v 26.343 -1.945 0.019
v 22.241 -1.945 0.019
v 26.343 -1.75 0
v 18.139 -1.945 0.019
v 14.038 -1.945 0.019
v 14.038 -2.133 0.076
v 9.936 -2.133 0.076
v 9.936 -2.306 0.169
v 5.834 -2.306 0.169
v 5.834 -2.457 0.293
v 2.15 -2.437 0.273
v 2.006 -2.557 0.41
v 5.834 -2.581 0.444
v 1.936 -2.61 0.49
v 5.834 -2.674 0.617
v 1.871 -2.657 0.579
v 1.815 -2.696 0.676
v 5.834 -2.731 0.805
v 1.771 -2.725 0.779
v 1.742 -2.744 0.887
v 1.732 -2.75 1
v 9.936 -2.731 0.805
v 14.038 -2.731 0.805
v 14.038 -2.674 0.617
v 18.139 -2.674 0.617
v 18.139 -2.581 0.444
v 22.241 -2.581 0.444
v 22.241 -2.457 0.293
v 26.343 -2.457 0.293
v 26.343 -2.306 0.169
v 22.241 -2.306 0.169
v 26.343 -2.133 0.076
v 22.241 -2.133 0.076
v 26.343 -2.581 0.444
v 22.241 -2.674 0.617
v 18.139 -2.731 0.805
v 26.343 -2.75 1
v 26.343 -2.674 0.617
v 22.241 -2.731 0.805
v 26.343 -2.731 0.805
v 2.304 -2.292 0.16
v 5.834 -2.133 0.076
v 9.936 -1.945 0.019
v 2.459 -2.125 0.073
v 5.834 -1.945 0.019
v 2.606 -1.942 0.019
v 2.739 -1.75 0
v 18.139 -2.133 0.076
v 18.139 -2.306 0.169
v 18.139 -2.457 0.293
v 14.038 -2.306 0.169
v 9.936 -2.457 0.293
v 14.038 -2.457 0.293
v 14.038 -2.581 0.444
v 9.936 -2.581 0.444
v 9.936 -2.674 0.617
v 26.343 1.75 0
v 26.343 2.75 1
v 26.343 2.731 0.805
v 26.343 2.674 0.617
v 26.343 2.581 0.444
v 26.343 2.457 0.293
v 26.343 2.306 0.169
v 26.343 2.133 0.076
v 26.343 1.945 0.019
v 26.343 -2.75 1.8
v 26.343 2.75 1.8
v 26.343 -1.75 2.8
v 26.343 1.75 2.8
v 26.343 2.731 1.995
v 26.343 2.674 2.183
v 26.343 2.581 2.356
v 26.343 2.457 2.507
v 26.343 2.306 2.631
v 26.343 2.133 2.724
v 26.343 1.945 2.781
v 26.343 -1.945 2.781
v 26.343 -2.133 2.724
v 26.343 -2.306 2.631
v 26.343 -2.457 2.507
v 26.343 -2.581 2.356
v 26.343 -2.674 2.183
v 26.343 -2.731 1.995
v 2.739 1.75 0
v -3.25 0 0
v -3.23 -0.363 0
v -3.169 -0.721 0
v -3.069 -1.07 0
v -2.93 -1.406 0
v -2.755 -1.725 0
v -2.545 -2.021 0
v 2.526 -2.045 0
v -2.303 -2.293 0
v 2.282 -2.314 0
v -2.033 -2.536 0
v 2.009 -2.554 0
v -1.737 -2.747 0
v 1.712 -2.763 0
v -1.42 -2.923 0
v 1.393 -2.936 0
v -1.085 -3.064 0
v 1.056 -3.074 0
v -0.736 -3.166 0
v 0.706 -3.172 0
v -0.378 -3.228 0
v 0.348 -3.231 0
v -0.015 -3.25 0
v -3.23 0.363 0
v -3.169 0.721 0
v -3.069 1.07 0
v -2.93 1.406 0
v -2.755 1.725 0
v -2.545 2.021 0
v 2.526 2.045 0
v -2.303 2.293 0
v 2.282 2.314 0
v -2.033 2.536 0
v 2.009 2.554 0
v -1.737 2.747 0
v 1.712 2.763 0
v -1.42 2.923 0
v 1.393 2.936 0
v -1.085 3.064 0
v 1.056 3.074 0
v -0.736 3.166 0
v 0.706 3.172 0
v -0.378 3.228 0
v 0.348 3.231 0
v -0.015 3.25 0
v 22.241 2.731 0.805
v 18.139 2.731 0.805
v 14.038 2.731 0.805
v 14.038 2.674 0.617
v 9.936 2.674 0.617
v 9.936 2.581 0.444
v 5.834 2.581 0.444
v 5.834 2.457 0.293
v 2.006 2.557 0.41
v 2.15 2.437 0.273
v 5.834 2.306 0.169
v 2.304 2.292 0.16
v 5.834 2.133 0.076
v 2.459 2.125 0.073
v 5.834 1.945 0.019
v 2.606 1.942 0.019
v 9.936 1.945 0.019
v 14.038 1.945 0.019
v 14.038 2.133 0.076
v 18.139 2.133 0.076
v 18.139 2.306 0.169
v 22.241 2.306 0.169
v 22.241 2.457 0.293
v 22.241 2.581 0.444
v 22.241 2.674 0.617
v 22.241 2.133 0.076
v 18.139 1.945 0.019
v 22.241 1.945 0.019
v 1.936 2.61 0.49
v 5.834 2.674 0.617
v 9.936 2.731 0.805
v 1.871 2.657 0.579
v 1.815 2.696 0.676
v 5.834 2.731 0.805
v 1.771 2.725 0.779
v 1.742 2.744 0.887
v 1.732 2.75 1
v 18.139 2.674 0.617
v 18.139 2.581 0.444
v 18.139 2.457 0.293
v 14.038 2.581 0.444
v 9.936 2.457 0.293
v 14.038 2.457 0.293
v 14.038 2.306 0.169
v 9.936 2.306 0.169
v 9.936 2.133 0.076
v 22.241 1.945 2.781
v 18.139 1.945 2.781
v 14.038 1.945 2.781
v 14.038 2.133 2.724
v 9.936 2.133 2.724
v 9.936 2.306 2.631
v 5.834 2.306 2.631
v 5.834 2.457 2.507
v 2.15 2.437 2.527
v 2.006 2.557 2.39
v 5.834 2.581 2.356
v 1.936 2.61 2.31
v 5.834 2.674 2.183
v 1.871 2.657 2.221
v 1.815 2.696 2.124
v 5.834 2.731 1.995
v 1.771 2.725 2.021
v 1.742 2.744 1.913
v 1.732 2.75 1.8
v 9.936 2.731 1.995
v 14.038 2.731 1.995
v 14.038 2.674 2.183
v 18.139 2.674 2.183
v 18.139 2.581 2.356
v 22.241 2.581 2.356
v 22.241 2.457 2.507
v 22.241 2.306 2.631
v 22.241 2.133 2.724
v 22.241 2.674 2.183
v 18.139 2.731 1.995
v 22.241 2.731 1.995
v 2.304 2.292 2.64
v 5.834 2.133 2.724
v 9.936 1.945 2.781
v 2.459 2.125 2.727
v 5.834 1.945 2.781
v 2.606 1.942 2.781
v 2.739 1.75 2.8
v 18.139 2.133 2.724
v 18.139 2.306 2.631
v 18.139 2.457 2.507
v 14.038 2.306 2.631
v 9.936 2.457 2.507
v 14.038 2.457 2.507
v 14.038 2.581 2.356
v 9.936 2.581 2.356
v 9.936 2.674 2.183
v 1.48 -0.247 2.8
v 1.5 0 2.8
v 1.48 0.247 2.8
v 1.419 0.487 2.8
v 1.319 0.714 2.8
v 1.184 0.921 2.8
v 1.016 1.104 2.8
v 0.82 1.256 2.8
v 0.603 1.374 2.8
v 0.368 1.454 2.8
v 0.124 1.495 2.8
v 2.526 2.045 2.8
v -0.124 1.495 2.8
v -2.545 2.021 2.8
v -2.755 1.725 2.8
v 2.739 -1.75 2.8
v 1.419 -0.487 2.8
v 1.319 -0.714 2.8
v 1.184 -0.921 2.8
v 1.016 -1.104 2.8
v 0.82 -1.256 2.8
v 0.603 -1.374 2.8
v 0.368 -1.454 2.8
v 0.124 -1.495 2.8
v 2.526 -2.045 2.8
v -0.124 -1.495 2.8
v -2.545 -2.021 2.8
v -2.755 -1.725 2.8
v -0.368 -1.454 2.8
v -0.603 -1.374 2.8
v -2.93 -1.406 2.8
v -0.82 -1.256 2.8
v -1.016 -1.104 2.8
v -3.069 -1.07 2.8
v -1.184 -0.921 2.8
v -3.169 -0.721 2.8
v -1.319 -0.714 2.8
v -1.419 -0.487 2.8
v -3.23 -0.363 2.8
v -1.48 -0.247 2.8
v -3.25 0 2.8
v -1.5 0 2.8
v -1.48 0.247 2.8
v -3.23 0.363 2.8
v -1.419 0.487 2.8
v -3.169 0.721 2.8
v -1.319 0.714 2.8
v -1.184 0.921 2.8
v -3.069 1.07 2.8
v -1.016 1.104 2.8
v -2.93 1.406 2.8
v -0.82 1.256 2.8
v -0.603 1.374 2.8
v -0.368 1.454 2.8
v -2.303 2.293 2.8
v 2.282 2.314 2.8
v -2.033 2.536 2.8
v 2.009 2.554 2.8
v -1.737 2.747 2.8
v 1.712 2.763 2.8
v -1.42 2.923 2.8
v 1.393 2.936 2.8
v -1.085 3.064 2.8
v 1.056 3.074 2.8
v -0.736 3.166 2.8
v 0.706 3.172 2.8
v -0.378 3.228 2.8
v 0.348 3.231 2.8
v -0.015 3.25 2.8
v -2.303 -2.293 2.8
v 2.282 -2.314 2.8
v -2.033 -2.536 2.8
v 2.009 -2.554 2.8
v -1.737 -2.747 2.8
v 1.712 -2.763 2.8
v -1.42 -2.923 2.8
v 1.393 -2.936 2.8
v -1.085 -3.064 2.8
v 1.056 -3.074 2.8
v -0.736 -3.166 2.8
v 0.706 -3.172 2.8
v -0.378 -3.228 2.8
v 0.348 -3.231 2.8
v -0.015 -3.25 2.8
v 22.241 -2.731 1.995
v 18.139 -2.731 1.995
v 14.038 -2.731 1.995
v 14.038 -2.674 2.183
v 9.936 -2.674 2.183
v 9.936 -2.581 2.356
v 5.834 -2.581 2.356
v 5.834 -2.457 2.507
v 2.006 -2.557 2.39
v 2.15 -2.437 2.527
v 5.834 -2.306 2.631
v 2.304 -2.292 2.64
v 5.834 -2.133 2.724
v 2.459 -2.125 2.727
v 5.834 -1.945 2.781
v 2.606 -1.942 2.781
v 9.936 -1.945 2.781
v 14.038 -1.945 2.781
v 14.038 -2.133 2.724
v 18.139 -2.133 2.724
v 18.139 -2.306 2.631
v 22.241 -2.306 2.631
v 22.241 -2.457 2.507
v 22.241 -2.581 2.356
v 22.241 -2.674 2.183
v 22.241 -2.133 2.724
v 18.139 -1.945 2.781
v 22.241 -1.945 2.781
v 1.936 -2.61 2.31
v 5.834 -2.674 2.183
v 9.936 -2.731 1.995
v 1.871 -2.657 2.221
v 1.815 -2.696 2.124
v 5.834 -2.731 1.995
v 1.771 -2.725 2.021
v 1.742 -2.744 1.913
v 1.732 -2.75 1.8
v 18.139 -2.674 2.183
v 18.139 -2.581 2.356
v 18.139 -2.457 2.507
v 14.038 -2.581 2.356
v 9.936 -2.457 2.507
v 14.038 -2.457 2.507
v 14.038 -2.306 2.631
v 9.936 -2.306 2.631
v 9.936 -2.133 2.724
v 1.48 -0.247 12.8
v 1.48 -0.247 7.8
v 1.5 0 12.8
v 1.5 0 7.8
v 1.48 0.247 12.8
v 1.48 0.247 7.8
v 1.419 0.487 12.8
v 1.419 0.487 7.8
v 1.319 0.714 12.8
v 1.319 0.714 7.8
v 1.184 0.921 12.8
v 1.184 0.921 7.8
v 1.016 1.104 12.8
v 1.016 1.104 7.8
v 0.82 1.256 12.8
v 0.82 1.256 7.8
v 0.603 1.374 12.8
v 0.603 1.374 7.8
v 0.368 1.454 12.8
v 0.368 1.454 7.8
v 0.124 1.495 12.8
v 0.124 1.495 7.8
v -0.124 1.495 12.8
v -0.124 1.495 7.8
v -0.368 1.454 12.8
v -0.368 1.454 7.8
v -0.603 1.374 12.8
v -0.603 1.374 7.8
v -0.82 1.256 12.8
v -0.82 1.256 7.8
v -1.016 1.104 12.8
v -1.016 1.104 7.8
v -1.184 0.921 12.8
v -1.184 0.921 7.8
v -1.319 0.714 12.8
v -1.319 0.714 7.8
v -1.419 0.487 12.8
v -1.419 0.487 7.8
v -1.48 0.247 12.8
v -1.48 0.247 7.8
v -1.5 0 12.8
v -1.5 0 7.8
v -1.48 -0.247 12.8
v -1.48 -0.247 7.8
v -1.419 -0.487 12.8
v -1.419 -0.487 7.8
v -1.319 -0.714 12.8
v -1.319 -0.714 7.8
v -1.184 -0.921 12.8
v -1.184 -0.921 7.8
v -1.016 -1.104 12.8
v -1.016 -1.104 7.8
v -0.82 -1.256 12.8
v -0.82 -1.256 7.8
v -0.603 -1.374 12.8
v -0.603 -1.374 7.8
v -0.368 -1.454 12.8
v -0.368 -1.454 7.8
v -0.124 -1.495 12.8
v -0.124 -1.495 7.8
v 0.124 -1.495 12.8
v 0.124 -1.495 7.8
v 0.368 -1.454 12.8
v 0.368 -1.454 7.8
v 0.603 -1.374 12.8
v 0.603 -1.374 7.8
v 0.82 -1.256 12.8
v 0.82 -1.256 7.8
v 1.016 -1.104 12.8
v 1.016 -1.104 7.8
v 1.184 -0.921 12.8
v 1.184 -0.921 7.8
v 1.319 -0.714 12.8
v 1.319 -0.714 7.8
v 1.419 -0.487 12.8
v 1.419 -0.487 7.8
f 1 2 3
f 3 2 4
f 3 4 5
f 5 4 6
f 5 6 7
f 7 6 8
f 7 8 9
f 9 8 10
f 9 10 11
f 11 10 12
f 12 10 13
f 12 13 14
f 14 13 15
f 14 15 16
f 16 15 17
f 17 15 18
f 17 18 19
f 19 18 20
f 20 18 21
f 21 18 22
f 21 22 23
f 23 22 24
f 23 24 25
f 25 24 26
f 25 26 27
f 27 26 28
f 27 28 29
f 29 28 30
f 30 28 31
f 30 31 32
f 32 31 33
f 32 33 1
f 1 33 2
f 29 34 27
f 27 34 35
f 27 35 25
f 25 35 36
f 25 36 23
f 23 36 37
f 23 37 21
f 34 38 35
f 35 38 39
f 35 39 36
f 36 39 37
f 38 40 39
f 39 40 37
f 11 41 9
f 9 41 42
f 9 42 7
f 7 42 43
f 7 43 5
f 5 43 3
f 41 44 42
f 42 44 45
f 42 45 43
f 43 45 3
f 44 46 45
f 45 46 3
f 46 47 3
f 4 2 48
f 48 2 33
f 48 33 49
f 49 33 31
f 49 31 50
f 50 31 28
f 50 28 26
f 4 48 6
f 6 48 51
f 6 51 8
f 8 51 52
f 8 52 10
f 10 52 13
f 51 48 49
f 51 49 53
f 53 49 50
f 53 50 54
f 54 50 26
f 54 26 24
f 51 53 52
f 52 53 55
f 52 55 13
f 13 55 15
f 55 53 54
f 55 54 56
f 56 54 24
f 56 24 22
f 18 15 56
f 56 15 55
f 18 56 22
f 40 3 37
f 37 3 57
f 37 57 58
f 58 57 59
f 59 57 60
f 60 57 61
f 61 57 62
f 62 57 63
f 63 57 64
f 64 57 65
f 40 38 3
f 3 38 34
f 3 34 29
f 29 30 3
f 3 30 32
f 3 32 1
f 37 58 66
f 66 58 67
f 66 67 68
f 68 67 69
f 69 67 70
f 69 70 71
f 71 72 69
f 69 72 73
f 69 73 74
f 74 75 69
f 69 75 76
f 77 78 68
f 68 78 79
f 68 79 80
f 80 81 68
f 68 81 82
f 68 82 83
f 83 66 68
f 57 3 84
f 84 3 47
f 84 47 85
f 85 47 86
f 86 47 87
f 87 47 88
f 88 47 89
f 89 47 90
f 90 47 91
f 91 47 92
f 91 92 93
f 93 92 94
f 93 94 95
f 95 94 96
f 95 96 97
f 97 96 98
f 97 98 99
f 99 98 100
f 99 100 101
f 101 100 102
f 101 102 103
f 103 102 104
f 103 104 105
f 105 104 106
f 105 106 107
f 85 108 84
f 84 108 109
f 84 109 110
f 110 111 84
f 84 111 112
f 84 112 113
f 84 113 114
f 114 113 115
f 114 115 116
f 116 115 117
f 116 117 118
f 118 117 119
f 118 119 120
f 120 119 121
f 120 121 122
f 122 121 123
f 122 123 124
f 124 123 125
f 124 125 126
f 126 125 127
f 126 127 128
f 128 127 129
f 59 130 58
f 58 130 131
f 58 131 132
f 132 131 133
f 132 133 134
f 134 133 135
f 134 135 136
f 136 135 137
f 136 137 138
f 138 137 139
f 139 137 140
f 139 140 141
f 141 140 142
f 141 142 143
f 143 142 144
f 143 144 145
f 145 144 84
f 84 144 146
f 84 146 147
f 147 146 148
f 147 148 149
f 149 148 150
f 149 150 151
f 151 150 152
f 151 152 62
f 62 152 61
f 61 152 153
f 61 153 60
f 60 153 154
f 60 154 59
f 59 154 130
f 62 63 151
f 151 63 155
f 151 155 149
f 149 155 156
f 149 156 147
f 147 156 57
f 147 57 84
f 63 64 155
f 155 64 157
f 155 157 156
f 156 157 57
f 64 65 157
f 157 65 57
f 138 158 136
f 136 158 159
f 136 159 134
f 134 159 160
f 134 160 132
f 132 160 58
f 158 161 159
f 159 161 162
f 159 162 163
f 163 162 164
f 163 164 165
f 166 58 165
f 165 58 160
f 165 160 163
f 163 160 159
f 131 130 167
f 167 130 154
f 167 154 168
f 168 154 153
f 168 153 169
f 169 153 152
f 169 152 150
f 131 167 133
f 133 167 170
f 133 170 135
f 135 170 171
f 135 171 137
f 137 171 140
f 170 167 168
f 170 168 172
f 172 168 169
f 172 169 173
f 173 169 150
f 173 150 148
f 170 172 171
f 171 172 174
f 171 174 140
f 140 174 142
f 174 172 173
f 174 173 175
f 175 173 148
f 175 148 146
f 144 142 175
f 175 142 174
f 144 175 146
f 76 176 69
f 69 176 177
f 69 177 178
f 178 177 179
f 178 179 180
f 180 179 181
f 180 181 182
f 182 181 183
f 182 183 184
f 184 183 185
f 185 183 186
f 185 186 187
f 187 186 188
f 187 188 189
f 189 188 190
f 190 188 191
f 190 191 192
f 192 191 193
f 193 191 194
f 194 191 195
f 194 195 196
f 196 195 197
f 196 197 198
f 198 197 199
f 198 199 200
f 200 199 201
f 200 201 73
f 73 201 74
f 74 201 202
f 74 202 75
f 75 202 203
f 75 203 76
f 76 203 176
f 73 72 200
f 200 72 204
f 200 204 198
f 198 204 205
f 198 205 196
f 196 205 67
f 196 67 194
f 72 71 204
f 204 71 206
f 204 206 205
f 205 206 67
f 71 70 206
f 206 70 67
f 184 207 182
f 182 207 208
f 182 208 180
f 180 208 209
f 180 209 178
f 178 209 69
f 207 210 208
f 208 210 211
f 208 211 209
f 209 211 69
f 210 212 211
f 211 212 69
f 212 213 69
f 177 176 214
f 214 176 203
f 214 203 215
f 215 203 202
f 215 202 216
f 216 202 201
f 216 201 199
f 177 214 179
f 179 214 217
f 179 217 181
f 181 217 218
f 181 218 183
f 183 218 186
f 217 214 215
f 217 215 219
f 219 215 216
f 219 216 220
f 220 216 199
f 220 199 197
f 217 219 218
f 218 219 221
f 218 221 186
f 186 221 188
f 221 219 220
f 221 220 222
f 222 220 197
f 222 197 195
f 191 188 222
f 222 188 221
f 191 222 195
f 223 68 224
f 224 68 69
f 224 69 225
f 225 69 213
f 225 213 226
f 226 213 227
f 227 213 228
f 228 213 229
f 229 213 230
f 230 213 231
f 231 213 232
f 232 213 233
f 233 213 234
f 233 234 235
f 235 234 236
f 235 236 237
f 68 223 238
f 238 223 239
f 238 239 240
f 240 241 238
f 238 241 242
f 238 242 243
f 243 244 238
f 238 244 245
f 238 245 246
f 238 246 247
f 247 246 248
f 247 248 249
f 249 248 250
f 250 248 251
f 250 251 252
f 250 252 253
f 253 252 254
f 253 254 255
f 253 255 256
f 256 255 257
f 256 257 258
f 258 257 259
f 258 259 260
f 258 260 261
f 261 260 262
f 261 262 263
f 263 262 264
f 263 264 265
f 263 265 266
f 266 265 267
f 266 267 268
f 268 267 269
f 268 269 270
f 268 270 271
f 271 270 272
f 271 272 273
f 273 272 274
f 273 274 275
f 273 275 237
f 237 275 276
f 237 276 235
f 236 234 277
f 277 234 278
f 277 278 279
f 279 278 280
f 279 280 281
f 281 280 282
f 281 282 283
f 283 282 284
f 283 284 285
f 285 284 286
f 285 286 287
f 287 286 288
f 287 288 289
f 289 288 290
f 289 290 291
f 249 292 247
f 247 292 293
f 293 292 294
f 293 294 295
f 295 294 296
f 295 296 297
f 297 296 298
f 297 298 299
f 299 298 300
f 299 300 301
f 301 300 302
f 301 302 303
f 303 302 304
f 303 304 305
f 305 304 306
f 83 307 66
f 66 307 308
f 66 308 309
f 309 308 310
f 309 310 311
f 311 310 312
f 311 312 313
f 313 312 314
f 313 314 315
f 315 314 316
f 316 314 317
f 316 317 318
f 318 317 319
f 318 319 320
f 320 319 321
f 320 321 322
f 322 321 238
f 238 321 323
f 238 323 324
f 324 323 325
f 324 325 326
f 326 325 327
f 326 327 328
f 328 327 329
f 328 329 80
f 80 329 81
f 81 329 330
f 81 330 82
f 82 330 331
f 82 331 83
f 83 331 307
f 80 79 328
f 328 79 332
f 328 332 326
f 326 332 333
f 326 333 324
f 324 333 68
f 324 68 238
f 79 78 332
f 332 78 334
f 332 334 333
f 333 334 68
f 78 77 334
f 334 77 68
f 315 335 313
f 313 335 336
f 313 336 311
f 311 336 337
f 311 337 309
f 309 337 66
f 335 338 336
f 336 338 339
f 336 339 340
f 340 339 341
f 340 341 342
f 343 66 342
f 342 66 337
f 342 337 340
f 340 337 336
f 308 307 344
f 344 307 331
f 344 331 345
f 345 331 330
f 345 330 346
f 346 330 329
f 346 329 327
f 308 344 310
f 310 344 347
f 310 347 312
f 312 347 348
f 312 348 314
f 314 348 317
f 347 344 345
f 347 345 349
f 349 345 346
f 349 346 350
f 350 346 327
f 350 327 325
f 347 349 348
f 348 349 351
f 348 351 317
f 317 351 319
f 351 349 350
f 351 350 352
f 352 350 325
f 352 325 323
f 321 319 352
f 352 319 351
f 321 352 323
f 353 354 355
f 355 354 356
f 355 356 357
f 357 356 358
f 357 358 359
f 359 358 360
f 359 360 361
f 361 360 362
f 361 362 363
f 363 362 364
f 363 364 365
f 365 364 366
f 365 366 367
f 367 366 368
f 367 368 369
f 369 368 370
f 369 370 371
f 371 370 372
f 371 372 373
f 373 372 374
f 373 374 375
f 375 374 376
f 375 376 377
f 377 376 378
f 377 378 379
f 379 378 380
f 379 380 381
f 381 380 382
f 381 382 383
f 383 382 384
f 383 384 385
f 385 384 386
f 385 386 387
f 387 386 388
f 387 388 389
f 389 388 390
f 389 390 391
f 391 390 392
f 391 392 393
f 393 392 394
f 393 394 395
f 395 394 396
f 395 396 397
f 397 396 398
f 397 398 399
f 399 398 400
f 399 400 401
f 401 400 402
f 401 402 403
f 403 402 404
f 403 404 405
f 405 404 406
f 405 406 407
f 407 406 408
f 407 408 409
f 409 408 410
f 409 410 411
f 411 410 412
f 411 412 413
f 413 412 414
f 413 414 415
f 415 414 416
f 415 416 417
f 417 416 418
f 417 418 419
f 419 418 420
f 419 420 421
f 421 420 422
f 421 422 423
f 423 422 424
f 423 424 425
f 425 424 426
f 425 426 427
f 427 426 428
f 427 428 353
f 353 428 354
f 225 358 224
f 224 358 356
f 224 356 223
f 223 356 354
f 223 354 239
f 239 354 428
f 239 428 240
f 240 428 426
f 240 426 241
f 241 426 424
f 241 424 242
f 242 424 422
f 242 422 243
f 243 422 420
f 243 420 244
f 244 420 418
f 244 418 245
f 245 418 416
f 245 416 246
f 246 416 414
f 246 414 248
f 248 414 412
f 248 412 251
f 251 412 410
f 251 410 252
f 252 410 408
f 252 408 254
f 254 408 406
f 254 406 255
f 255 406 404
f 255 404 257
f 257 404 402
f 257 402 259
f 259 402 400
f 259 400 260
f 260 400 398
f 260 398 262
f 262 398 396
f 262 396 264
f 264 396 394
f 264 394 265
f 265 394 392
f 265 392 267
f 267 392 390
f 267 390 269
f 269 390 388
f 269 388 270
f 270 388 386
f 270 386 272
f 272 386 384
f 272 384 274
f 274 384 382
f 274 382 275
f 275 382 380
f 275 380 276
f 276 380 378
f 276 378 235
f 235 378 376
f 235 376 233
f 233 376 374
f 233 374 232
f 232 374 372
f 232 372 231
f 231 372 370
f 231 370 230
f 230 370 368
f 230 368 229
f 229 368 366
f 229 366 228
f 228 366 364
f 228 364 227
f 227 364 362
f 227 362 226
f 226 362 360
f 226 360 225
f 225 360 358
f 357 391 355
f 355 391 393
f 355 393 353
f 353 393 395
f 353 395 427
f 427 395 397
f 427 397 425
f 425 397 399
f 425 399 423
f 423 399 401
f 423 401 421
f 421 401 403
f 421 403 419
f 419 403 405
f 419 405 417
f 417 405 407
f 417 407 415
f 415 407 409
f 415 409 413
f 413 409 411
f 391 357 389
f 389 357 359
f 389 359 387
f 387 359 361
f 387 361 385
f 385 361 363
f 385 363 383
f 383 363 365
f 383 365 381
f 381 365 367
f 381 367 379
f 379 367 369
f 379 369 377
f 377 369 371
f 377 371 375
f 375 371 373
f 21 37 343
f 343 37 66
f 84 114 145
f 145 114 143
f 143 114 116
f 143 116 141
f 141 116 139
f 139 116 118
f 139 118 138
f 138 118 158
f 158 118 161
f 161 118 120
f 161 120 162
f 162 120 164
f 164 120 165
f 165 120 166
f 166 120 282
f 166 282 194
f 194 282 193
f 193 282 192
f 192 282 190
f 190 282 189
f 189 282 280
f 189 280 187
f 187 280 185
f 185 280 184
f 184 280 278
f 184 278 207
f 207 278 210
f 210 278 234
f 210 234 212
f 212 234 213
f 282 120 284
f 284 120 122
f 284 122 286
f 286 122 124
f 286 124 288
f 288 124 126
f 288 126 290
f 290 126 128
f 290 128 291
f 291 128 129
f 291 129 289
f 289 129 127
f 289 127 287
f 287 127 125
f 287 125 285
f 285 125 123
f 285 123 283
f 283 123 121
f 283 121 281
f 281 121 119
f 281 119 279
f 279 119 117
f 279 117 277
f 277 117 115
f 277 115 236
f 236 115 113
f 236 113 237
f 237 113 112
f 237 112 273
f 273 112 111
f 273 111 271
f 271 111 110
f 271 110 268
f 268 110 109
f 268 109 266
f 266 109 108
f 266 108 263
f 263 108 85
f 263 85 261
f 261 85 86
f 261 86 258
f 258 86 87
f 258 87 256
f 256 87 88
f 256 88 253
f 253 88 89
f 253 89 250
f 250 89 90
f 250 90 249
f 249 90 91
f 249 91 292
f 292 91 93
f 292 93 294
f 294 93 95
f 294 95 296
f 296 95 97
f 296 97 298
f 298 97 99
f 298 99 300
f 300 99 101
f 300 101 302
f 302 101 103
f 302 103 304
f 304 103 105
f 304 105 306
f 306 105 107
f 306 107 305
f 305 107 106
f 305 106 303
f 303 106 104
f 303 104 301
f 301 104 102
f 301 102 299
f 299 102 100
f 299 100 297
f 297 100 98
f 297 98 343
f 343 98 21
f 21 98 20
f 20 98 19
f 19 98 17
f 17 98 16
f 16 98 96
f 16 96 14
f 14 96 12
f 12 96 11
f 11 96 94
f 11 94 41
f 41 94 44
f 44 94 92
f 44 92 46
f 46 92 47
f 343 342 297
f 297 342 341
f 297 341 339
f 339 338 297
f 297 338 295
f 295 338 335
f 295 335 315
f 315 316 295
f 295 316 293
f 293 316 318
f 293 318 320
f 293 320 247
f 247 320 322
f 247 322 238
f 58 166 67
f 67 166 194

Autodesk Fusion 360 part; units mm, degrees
sketch "Sketch1" plane through (0, 0, 0) normal (0, 0, 1) x (1, 0, 0)
  line L0 (1.7321, 2.75) -> (26.3431, 2.75)
  line L1 (26.3431, 2.75) -> (26.3431, -2.75)
  line L2 (26.3431, -2.75) -> (1.7321, -2.75)
  arc A0 (1.7321, 2.75) -> (1.7321, -2.75) centre (0, 0) ccw
  dimension "d1" = 6.5
  dimension "d2" = 5.5
  dimension "d3" = 24.611
  dimension "d4" = 5.5
sketch "Sketch2" plane through (0, 0, 0) normal (0, 0, 1) x (1, 0, 0)
sketch "Sketch3" plane through (0, 0, 0) normal (0, 0, 1) x (1, 0, 0)
extrude "Extrude1" add sketch "Sketch1" along normal blind 2.8
sketch "Sketch4" plane through (0, 0, 2.8) normal (0, 0, 1) x (-1, 0, 0)
  line L0 (-26.3431, -2.75) -> (-1.7321, -2.75)
  arc A0 (-1.7321, -2.75) -> (-1.7321, 2.75) centre (0, 0) ccw
  line L1 (-1.7321, 2.75) -> (-26.3431, 2.75)
  line L2 (-26.3431, 2.75) -> (-26.3431, -2.75)
  circle A1 centre (0, 0) radius 1.5
  dimension "d7" = 3
extrude "Extrude2" add sketch "Sketch4" along normal blind 10 contours A1
fillet "Fillet1" radius 1 4 edges at (14.0376, -2.75, 2.8) (14.0376, 2.75, 2.8) (14.0376, 2.75, 0) (14.0376, -2.75, 0)
